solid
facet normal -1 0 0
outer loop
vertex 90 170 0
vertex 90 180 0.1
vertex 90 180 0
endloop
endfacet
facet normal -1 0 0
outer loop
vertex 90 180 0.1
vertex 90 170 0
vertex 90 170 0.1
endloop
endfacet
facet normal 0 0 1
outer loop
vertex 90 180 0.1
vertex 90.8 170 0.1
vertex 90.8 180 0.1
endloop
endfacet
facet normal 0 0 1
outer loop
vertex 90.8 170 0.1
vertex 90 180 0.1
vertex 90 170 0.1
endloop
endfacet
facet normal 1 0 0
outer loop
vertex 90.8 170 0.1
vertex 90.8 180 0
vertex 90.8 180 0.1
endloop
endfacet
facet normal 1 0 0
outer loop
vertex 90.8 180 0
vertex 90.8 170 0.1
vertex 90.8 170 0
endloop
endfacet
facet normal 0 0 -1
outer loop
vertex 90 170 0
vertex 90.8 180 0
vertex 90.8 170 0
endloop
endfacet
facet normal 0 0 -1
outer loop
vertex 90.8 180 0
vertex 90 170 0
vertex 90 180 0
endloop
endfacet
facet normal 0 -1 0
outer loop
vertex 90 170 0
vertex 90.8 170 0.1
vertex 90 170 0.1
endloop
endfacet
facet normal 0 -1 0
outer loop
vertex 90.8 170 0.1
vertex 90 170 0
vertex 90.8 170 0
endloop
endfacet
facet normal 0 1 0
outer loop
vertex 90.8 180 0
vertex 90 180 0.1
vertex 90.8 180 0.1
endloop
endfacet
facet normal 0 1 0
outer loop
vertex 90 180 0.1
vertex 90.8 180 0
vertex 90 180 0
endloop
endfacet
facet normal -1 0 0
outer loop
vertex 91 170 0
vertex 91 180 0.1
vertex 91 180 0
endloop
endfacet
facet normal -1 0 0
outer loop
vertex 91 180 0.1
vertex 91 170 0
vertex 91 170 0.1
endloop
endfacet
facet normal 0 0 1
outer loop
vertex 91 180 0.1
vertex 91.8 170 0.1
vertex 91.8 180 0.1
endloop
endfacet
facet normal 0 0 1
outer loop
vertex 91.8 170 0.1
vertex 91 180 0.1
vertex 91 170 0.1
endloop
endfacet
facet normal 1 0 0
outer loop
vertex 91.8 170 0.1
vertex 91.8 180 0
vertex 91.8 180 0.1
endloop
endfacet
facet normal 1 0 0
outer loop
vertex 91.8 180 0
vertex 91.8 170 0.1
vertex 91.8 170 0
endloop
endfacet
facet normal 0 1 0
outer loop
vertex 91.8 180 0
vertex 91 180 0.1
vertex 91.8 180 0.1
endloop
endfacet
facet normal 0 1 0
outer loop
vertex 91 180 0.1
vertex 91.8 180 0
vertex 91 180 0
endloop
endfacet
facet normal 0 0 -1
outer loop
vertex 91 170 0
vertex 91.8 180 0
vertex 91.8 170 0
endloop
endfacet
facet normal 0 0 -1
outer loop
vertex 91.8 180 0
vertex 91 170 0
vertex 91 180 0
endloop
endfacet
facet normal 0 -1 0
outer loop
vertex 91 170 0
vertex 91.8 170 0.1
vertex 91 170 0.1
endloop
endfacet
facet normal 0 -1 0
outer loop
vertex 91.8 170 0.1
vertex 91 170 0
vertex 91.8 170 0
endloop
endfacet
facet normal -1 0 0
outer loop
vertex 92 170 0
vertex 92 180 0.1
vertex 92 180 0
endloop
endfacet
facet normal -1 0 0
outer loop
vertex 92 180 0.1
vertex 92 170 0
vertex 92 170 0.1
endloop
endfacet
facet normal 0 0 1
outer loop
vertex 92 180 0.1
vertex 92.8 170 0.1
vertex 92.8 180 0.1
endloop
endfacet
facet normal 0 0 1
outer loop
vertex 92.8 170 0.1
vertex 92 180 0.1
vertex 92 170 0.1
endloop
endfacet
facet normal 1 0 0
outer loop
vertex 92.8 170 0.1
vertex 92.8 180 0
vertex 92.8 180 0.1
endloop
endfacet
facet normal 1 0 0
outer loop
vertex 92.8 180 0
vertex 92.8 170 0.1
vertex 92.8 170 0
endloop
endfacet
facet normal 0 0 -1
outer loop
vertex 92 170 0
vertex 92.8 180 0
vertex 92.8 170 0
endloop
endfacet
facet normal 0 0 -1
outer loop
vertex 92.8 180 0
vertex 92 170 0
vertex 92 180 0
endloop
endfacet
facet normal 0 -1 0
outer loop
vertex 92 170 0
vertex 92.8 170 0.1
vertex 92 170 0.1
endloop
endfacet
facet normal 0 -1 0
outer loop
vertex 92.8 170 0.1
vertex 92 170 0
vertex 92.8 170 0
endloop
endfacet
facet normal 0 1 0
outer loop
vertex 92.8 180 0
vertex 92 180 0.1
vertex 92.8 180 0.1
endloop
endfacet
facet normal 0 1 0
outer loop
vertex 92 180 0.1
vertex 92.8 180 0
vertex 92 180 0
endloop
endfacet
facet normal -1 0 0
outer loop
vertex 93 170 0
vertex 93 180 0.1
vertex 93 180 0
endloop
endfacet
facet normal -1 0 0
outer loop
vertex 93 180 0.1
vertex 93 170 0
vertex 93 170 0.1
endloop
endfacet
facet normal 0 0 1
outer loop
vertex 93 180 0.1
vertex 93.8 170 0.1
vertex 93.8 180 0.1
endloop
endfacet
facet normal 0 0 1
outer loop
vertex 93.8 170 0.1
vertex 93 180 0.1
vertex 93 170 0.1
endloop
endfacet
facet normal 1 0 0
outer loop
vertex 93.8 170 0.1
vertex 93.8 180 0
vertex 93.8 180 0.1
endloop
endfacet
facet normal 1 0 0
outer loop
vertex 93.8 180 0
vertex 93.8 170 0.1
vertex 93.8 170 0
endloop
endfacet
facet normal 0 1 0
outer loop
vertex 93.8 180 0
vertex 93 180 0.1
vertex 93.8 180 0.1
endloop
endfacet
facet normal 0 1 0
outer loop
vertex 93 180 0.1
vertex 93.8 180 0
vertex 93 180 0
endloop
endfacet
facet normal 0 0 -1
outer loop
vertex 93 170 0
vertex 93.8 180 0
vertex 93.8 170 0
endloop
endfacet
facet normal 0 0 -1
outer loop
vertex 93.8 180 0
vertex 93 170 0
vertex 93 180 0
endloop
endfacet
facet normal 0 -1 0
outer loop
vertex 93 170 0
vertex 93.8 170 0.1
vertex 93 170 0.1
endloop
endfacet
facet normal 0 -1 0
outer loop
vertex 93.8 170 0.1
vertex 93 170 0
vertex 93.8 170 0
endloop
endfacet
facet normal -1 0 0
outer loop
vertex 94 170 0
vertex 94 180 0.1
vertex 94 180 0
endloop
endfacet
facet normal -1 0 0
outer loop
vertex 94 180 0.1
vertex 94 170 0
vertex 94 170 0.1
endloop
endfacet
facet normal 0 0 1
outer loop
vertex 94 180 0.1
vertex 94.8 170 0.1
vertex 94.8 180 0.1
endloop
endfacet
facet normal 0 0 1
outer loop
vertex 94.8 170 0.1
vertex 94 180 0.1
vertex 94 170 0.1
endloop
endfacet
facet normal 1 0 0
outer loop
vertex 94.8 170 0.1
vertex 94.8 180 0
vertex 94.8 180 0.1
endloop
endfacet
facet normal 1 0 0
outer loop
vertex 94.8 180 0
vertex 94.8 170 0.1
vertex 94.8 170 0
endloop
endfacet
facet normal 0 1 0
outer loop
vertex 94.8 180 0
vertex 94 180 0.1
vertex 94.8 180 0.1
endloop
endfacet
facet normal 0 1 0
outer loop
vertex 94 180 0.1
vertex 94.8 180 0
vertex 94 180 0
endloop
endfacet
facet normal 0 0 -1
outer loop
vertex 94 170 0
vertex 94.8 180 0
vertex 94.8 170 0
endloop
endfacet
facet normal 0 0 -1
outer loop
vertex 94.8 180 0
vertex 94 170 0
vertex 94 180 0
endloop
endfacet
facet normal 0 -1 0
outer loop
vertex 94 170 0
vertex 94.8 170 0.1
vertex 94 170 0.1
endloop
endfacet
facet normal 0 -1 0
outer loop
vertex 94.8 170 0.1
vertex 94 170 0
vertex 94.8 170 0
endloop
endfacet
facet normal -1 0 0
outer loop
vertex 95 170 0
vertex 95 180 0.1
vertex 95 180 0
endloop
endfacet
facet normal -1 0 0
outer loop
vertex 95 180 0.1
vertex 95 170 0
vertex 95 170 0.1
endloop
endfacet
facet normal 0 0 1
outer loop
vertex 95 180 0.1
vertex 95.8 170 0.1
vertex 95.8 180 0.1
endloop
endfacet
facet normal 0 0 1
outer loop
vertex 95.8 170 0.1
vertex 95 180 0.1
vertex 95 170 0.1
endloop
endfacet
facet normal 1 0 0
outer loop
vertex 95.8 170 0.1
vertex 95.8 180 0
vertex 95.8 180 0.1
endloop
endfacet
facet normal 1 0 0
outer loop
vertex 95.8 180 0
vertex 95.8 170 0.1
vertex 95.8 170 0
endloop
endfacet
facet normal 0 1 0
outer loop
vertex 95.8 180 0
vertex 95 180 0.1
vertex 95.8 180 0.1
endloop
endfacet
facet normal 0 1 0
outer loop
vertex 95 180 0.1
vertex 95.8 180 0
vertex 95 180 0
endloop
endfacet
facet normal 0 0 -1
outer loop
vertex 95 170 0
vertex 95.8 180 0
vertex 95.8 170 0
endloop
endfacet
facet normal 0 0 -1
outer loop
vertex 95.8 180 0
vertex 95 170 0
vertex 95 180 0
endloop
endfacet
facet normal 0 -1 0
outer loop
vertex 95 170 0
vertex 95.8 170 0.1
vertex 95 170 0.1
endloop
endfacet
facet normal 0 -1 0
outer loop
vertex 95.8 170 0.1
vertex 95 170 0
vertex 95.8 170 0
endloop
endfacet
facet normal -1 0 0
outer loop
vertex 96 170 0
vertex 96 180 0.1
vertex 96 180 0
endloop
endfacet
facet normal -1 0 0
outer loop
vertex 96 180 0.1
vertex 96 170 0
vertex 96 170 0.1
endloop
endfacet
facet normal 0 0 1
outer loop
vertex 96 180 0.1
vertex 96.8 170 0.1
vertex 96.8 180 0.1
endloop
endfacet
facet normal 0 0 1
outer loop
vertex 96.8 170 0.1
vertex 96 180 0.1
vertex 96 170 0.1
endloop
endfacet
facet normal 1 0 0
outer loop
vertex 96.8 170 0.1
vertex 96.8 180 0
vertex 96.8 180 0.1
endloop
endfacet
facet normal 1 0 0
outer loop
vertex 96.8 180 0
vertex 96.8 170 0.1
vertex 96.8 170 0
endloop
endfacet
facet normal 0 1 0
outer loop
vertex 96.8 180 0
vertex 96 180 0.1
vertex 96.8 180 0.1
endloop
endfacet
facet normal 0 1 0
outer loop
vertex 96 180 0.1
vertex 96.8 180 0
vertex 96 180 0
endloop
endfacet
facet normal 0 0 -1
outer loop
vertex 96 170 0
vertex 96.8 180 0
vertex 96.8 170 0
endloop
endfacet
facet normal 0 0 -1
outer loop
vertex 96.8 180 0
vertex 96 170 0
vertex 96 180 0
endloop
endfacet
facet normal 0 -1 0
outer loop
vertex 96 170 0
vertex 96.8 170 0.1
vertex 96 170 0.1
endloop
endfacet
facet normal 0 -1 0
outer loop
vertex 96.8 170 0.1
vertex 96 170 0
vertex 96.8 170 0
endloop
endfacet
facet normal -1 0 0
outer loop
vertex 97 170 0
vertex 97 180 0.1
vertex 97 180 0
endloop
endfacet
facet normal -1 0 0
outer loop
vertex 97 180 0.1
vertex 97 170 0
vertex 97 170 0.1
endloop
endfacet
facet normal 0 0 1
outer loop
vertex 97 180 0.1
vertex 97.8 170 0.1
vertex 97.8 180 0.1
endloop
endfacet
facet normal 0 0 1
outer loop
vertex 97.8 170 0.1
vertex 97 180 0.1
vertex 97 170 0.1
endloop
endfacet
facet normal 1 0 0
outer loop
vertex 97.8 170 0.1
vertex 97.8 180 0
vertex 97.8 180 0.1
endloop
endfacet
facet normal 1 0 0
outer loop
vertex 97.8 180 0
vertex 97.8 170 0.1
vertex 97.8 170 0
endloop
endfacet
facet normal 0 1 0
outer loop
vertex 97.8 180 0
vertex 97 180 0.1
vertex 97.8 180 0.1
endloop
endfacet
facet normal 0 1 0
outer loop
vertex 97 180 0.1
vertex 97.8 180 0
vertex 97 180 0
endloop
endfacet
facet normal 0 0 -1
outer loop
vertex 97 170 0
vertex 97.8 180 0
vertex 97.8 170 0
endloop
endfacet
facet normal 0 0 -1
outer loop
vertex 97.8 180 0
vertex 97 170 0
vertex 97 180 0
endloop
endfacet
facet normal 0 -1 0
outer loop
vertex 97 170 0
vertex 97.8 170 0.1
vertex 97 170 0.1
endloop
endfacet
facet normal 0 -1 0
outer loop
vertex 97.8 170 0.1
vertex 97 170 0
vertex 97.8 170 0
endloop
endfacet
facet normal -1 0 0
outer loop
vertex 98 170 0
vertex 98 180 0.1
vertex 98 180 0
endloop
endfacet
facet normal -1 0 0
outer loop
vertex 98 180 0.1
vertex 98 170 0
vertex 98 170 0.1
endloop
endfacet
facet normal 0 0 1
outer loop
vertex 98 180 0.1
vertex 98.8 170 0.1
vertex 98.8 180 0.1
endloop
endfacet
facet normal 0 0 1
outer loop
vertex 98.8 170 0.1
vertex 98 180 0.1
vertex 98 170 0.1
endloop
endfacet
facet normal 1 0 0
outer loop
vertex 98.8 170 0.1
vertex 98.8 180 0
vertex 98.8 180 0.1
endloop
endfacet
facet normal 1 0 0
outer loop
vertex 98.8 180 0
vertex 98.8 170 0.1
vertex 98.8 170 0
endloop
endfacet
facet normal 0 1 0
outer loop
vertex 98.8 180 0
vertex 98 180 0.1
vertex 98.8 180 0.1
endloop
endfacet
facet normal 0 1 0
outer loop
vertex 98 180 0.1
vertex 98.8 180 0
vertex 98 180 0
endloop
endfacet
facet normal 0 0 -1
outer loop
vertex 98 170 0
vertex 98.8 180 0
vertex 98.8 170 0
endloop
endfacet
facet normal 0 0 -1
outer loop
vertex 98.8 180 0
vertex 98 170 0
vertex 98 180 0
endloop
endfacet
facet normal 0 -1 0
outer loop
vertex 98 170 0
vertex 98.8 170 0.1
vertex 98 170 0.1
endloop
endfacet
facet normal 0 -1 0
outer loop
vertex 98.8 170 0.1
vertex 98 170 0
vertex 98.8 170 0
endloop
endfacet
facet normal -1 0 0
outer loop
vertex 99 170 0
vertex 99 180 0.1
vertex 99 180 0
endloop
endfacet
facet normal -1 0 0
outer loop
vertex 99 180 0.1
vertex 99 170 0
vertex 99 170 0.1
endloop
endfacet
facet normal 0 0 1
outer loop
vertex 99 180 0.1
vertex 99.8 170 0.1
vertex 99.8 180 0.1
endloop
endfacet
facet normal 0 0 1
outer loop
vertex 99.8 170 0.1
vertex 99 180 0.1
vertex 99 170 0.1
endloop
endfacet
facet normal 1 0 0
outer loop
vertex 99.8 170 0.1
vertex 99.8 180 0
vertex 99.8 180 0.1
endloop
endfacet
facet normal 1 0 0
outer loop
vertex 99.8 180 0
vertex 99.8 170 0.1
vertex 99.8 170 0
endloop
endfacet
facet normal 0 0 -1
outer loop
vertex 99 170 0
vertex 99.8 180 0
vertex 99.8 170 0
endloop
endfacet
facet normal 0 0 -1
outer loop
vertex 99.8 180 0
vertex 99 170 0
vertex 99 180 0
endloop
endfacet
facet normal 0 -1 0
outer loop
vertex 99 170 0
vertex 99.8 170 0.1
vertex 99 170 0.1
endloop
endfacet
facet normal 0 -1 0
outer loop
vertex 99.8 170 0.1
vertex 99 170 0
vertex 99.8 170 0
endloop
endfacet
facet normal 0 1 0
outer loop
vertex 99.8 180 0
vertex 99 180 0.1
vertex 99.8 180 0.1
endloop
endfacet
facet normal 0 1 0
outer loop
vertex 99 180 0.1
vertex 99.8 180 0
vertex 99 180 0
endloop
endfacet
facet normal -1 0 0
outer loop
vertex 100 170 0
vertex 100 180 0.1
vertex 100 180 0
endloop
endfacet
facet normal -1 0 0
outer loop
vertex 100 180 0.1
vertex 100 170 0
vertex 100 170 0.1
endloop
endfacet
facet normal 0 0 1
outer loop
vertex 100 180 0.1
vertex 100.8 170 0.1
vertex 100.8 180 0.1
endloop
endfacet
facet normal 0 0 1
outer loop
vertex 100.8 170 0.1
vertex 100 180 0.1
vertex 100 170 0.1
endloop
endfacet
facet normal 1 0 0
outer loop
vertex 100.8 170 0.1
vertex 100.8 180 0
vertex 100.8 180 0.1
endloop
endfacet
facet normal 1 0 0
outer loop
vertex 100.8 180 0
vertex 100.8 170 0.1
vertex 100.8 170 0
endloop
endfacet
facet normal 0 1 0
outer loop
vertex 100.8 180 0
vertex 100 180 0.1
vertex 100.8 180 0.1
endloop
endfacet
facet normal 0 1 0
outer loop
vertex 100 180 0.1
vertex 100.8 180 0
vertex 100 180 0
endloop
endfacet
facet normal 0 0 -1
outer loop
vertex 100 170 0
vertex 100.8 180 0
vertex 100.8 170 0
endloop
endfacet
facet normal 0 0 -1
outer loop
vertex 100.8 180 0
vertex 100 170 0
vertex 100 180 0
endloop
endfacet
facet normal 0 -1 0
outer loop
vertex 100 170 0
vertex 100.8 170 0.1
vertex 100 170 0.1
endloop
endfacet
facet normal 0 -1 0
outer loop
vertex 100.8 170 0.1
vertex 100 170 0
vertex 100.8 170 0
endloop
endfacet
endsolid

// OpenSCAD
translate([10+80,10+160,0])
        for (i = [0 : 10]){
            translate([i,0,0])
                cube(size = [0.8,10,0.1]);
    }
